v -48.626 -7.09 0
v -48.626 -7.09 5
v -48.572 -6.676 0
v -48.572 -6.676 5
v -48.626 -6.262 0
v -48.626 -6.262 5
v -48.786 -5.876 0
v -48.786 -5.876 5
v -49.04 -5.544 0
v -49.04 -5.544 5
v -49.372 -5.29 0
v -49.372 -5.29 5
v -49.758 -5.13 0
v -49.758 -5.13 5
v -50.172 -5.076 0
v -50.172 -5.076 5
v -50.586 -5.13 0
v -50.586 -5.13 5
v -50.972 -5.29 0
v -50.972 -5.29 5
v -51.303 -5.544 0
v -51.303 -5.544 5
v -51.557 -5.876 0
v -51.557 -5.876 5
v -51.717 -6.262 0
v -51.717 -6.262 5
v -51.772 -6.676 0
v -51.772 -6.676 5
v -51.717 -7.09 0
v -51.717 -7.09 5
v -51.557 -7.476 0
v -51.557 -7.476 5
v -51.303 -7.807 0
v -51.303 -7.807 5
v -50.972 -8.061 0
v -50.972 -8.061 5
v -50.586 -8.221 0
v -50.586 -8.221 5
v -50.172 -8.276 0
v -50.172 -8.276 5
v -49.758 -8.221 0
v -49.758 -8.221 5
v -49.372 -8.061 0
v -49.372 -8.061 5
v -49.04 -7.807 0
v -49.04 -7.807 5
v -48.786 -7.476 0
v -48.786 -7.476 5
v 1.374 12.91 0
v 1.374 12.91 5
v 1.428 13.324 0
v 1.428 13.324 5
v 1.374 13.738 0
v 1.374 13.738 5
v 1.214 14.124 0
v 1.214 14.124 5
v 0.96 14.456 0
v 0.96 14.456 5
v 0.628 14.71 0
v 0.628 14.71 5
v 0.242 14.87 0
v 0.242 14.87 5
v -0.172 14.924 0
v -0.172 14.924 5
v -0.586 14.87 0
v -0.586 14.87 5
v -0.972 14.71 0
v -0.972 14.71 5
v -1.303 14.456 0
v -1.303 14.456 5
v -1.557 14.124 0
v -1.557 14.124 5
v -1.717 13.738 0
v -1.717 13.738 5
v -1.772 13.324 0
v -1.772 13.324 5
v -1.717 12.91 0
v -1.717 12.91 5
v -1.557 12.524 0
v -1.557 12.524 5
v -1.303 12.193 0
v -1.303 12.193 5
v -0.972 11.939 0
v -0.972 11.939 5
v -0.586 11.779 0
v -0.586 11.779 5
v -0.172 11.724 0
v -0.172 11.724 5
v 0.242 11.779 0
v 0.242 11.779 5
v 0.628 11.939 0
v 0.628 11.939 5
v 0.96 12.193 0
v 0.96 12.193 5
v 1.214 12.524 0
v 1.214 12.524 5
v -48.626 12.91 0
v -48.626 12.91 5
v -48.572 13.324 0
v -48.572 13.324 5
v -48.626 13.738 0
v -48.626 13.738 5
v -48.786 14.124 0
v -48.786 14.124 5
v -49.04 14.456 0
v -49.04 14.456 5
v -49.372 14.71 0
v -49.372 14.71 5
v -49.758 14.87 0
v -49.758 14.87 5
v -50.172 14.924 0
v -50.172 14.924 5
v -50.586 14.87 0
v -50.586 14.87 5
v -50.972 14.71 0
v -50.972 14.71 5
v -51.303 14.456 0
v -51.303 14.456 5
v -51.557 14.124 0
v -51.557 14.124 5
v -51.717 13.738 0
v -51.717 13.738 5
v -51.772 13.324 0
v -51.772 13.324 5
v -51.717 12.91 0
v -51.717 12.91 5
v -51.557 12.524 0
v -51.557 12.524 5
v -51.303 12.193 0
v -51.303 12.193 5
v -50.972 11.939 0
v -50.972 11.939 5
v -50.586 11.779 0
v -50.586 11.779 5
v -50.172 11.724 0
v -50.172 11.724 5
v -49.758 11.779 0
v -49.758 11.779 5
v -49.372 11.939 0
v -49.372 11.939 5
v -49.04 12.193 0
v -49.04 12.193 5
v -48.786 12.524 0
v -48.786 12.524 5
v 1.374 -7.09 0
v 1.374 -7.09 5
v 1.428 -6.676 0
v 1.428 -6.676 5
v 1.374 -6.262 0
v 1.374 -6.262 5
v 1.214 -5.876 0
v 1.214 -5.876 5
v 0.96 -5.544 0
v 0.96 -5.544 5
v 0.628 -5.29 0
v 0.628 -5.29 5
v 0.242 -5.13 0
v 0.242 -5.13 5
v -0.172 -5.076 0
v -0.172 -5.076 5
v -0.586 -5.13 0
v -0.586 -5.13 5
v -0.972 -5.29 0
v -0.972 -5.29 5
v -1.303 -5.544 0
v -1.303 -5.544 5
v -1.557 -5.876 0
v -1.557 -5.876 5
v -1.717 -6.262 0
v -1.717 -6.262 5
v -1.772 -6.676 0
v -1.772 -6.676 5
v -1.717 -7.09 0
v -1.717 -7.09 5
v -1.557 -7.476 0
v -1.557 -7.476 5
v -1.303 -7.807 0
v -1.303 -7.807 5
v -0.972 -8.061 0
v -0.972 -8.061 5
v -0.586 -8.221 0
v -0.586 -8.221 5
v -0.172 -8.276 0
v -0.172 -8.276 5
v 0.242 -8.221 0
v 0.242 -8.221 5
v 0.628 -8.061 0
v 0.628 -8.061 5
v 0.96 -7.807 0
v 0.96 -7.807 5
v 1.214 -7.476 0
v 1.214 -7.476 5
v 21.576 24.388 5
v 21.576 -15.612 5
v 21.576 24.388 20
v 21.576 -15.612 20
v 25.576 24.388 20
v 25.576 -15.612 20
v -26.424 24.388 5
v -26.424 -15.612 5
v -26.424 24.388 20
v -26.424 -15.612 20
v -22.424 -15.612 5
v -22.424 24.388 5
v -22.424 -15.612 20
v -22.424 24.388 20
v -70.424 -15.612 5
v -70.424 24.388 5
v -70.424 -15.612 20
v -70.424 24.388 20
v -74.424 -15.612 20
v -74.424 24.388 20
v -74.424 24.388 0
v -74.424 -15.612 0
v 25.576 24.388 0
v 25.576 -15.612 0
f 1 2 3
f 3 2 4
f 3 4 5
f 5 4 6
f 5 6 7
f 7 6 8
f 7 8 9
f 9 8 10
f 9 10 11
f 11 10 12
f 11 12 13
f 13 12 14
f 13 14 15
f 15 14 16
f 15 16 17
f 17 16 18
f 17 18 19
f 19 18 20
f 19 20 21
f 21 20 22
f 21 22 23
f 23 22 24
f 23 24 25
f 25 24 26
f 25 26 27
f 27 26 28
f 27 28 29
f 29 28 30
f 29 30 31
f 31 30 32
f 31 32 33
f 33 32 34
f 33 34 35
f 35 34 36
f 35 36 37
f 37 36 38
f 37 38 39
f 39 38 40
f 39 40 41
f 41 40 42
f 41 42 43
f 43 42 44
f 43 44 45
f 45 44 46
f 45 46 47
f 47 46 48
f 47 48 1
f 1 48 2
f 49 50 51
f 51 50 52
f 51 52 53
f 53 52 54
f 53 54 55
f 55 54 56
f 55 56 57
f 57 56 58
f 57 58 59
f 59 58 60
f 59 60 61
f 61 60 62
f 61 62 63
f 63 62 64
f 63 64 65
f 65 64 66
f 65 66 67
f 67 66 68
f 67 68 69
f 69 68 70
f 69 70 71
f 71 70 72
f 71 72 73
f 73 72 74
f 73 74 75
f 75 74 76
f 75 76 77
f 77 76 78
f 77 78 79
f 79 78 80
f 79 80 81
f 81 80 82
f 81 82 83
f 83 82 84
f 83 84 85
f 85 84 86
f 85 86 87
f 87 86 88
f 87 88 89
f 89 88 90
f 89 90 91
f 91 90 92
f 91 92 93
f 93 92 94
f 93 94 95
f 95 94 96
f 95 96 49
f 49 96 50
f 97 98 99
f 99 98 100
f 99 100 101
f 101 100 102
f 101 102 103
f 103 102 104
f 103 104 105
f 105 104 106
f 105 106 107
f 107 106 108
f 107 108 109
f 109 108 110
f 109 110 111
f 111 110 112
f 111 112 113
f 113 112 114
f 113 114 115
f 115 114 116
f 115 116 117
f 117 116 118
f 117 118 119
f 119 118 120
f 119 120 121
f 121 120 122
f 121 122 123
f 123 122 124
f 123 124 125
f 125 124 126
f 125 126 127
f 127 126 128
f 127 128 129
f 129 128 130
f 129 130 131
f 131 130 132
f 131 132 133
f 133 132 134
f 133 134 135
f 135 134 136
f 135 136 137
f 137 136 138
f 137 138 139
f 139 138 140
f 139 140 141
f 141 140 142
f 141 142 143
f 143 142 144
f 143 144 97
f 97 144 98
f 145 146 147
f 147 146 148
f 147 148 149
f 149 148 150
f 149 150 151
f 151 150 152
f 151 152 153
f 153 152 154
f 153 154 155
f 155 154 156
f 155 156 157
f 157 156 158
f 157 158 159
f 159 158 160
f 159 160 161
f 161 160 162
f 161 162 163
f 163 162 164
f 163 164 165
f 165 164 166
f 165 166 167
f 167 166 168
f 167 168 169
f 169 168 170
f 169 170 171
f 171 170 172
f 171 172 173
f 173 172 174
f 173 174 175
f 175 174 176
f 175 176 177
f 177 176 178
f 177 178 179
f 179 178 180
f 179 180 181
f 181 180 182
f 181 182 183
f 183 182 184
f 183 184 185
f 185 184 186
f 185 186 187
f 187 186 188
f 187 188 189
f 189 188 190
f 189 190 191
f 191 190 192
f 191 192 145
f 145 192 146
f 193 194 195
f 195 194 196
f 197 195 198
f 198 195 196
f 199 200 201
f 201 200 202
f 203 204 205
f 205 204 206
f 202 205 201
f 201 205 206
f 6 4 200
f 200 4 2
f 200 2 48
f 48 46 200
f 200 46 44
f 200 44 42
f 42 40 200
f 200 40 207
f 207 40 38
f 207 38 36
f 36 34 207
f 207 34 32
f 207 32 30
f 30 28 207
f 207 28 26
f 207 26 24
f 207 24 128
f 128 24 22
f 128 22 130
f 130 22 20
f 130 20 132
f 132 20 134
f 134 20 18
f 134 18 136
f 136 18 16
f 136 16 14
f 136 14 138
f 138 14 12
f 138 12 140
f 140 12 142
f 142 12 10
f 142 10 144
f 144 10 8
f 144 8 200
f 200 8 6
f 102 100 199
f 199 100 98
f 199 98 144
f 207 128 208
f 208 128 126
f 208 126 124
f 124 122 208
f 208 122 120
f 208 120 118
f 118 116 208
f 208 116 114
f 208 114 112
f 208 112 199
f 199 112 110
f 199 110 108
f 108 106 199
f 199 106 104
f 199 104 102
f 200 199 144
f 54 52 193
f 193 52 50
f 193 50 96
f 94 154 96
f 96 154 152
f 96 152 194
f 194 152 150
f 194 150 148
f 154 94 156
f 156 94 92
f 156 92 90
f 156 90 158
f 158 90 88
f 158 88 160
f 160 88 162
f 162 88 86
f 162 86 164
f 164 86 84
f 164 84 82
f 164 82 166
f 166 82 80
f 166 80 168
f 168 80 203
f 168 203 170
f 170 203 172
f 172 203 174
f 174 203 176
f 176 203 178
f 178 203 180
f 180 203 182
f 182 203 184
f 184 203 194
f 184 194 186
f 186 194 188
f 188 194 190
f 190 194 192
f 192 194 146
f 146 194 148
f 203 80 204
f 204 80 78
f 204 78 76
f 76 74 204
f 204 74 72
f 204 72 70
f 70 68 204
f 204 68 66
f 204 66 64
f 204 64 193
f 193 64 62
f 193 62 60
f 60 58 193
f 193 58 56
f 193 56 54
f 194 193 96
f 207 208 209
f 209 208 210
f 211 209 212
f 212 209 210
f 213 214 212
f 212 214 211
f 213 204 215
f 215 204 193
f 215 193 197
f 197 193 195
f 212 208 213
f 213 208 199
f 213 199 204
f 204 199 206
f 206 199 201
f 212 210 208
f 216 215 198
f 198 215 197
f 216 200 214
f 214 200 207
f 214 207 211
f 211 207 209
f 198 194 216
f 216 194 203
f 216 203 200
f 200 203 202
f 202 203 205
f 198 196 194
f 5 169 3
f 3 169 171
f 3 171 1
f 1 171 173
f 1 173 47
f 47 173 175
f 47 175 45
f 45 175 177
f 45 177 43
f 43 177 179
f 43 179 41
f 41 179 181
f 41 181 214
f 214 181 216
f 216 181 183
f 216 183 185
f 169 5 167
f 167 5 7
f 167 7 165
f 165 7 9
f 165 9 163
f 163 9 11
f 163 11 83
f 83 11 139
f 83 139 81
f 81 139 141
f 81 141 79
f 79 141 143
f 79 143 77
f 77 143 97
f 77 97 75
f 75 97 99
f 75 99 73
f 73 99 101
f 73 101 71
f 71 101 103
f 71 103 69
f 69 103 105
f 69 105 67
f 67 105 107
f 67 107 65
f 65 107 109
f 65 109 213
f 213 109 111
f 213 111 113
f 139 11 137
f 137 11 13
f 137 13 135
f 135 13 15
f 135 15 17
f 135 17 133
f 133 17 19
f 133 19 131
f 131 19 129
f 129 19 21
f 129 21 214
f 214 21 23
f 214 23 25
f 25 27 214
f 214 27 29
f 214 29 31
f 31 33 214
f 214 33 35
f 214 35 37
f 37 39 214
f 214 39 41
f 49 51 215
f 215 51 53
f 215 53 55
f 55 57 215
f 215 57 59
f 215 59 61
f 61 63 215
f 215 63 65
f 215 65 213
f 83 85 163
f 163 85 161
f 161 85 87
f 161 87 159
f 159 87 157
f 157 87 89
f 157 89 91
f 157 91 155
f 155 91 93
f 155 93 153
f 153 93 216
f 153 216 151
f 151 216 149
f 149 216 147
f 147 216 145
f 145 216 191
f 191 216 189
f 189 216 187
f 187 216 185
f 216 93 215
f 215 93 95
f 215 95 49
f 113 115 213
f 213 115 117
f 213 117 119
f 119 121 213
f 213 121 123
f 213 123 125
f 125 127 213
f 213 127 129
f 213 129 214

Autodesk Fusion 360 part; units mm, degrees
sketch "Sketch1" plane through (0, 0, 0) normal (0, 0, 1) x (1, 0, 0)
  line L0 (-74.4245, 24.3877) -> (25.5755, 24.3877)
  line L1 (25.5755, 24.3877) -> (25.5755, -15.6123)
  line L2 (25.5755, -15.6123) -> (-74.4245, -15.6123)
  line L3 (-74.4245, -15.6123) -> (-74.4245, 24.3877)
  dimension "d1" = 100
  dimension "d2" = 40
extrude "Extrude1" add sketch "Sketch1" along normal blind 5
sketch "Sketch2" plane through (0, 0, 5) normal (0, 0, 1) x (-1, 0, 0)
  line L0 (74.4245, 15.6123) -> (-25.5755, 15.6123)
  line L1 (-25.5755, 15.6123) -> (-25.5755, -24.3877)
  line L2 (-25.5755, -24.3877) -> (74.4245, -24.3877)
  line L3 (74.4245, -24.3877) -> (74.4245, 15.6123)
  line L4 (74.4245, -24.3877) -> (70.4245, -24.3877)
  line L5 (70.4245, -24.3877) -> (70.4245, 15.6123)
  line L6 (70.4245, 15.6123) -> (74.4245, 15.6123)
  line L7 (74.4245, 15.6123) -> (74.4245, -24.3877)
  line L8 (-25.5755, -24.3877) -> (-21.5755, -24.3877)
  line L9 (-21.5755, -24.3877) -> (-21.5755, 15.6123)
  line L10 (-21.5755, 15.6123) -> (-25.5755, 15.6123)
  line L11 (-25.5755, 15.6123) -> (-25.5755, -24.3877)
  line L12 (26.4245, -24.3877) -> (22.4245, -24.3877)
  line L13 (22.4245, -24.3877) -> (22.4245, 15.6123)
  line L14 (22.4245, 15.6123) -> (26.4245, 15.6123)
  line L15 (26.4245, 15.6123) -> (26.4245, -24.3877)
  point P0 (24.4245, -24.3877)
  dimension "d5" = 4
extrude "Extrude2" add sketch "Sketch2" along normal blind 15 contours L0 L2 L3 L4 L5 L6 L7 | L0 L2 L12 L13 L14 L15 | L0 L1 L2 L8 L9 L10 L11
sketch "Sketch3" plane through (0, 0, 5) normal (0, 0, 1) x (-1, 0, 0)
  line L0 (26.4245, 15.6123) -> (26.4245, -24.3877)
  line L1 (26.4245, -24.3877) -> (70.4245, -24.3877)
  line L2 (70.4245, -24.3877) -> (70.4245, 15.6123)
  line L3 (70.4245, 15.6123) -> (26.4245, 15.6123)
  circle A0 centre (50.1716, -13.3243) radius 1.6
  circle A1 centre (50.1716, 6.6757) radius 1.6
  circle A2 centre (0.1716, -13.3243) radius 1.6
  circle A3 centre (0.1716, 6.6757) radius 1.6
  point P0 (0.1716, -13.3243)
  point P1 (50.1716, 6.6757)
  point P2 (0.1716, 6.6757)
  dimension "d8" = 3.2
  dimension "d11" = -50
  dimension "d12" = 20
  dimension "d15" = 3.2
  dimension "d16" = 3.2
  dimension "d17" = 3.2
extrude "Extrude3" cut sketch "Sketch3" against normal blind 5 contours A0 | A1 | A2 | A3
